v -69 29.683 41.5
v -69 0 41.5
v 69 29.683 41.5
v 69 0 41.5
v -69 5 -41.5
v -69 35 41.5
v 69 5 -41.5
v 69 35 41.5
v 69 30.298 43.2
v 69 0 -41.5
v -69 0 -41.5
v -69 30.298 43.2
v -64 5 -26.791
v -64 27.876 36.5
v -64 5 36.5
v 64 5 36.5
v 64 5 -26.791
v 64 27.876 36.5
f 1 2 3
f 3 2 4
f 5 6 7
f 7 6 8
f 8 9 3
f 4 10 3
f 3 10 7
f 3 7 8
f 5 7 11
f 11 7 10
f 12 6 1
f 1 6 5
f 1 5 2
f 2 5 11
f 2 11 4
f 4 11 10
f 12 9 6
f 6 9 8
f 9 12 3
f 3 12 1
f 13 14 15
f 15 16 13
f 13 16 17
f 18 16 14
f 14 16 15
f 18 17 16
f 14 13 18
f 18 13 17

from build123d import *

# Parameters (mm, degrees)
SKETCH1_W           = 138
SKETCH1_H           = 83
BOSS_EXTRUDE1_DEPTH = 5
BOSS_EXTRUDE2_DEPTH = 5
BOSS_EXTRUDE3_DEPTH = 5
SKETCH5_W           = 128
SKETCH5_H           = 25
BOSS_EXTRUDE4_DEPTH = 5
SKETCH7_W           = 138
SKETCH7_H           = 88.255311455
BOSS_EXTRUDE7_DEPTH = 5


with BuildPart() as part:
    # Sketch1 → Boss-Extrude1 (new body)
    with BuildSketch(Plane(origin=(0, 0, 0), x_dir=(1, 0, 0), z_dir=(0, 1, 0))):
        Rectangle(SKETCH1_W, SKETCH1_H)
    extrude(amount=BOSS_EXTRUDE1_DEPTH)

    # Sketch4 → Boss-Extrude3 (add)
    with BuildSketch(Plane.ZY.offset(69)):
        Polygon((41.5, 5), (41.5, 35), (-41.5, 5), align=None)
    extrude(amount=-BOSS_EXTRUDE3_DEPTH)



with BuildPart() as body_2:
    # Sketch2 → Boss-Extrude2 (new body)
    with BuildSketch(Plane(origin=(69, 0, 0), x_dir=(0, 0, -1), z_dir=(1, 0, 0))):
        Polygon((-41.5, 5), (-41.5, 35), (41.5, 5), align=None)
    extrude(amount=-BOSS_EXTRUDE2_DEPTH)


with BuildPart() as part_1:
    add(part.part)

    add(body_2.part)  # Boss-Extrude4 merges body 2
    # Sketch5 → Boss-Extrude4 (add)
    with BuildSketch(Plane.XY.offset(41.5)):
        with Locations((0, 17.5)):
            Rectangle(SKETCH5_W, SKETCH5_H)
    extrude(amount=-BOSS_EXTRUDE4_DEPTH)

    # Sketch7 → Boss-Extrude7 (add)
    with BuildSketch(Plane(origin=(0, 17.689048658, -6.393632045), x_dir=(1, 0, 0), z_dir=(0, 0.9404533124606549, -0.33992288402192333))):
        with Locations((0, -6.798457681)):
            Rectangle(SKETCH7_W, SKETCH7_H)
    extrude(amount=-BOSS_EXTRUDE7_DEPTH)


solid = part_1.part
